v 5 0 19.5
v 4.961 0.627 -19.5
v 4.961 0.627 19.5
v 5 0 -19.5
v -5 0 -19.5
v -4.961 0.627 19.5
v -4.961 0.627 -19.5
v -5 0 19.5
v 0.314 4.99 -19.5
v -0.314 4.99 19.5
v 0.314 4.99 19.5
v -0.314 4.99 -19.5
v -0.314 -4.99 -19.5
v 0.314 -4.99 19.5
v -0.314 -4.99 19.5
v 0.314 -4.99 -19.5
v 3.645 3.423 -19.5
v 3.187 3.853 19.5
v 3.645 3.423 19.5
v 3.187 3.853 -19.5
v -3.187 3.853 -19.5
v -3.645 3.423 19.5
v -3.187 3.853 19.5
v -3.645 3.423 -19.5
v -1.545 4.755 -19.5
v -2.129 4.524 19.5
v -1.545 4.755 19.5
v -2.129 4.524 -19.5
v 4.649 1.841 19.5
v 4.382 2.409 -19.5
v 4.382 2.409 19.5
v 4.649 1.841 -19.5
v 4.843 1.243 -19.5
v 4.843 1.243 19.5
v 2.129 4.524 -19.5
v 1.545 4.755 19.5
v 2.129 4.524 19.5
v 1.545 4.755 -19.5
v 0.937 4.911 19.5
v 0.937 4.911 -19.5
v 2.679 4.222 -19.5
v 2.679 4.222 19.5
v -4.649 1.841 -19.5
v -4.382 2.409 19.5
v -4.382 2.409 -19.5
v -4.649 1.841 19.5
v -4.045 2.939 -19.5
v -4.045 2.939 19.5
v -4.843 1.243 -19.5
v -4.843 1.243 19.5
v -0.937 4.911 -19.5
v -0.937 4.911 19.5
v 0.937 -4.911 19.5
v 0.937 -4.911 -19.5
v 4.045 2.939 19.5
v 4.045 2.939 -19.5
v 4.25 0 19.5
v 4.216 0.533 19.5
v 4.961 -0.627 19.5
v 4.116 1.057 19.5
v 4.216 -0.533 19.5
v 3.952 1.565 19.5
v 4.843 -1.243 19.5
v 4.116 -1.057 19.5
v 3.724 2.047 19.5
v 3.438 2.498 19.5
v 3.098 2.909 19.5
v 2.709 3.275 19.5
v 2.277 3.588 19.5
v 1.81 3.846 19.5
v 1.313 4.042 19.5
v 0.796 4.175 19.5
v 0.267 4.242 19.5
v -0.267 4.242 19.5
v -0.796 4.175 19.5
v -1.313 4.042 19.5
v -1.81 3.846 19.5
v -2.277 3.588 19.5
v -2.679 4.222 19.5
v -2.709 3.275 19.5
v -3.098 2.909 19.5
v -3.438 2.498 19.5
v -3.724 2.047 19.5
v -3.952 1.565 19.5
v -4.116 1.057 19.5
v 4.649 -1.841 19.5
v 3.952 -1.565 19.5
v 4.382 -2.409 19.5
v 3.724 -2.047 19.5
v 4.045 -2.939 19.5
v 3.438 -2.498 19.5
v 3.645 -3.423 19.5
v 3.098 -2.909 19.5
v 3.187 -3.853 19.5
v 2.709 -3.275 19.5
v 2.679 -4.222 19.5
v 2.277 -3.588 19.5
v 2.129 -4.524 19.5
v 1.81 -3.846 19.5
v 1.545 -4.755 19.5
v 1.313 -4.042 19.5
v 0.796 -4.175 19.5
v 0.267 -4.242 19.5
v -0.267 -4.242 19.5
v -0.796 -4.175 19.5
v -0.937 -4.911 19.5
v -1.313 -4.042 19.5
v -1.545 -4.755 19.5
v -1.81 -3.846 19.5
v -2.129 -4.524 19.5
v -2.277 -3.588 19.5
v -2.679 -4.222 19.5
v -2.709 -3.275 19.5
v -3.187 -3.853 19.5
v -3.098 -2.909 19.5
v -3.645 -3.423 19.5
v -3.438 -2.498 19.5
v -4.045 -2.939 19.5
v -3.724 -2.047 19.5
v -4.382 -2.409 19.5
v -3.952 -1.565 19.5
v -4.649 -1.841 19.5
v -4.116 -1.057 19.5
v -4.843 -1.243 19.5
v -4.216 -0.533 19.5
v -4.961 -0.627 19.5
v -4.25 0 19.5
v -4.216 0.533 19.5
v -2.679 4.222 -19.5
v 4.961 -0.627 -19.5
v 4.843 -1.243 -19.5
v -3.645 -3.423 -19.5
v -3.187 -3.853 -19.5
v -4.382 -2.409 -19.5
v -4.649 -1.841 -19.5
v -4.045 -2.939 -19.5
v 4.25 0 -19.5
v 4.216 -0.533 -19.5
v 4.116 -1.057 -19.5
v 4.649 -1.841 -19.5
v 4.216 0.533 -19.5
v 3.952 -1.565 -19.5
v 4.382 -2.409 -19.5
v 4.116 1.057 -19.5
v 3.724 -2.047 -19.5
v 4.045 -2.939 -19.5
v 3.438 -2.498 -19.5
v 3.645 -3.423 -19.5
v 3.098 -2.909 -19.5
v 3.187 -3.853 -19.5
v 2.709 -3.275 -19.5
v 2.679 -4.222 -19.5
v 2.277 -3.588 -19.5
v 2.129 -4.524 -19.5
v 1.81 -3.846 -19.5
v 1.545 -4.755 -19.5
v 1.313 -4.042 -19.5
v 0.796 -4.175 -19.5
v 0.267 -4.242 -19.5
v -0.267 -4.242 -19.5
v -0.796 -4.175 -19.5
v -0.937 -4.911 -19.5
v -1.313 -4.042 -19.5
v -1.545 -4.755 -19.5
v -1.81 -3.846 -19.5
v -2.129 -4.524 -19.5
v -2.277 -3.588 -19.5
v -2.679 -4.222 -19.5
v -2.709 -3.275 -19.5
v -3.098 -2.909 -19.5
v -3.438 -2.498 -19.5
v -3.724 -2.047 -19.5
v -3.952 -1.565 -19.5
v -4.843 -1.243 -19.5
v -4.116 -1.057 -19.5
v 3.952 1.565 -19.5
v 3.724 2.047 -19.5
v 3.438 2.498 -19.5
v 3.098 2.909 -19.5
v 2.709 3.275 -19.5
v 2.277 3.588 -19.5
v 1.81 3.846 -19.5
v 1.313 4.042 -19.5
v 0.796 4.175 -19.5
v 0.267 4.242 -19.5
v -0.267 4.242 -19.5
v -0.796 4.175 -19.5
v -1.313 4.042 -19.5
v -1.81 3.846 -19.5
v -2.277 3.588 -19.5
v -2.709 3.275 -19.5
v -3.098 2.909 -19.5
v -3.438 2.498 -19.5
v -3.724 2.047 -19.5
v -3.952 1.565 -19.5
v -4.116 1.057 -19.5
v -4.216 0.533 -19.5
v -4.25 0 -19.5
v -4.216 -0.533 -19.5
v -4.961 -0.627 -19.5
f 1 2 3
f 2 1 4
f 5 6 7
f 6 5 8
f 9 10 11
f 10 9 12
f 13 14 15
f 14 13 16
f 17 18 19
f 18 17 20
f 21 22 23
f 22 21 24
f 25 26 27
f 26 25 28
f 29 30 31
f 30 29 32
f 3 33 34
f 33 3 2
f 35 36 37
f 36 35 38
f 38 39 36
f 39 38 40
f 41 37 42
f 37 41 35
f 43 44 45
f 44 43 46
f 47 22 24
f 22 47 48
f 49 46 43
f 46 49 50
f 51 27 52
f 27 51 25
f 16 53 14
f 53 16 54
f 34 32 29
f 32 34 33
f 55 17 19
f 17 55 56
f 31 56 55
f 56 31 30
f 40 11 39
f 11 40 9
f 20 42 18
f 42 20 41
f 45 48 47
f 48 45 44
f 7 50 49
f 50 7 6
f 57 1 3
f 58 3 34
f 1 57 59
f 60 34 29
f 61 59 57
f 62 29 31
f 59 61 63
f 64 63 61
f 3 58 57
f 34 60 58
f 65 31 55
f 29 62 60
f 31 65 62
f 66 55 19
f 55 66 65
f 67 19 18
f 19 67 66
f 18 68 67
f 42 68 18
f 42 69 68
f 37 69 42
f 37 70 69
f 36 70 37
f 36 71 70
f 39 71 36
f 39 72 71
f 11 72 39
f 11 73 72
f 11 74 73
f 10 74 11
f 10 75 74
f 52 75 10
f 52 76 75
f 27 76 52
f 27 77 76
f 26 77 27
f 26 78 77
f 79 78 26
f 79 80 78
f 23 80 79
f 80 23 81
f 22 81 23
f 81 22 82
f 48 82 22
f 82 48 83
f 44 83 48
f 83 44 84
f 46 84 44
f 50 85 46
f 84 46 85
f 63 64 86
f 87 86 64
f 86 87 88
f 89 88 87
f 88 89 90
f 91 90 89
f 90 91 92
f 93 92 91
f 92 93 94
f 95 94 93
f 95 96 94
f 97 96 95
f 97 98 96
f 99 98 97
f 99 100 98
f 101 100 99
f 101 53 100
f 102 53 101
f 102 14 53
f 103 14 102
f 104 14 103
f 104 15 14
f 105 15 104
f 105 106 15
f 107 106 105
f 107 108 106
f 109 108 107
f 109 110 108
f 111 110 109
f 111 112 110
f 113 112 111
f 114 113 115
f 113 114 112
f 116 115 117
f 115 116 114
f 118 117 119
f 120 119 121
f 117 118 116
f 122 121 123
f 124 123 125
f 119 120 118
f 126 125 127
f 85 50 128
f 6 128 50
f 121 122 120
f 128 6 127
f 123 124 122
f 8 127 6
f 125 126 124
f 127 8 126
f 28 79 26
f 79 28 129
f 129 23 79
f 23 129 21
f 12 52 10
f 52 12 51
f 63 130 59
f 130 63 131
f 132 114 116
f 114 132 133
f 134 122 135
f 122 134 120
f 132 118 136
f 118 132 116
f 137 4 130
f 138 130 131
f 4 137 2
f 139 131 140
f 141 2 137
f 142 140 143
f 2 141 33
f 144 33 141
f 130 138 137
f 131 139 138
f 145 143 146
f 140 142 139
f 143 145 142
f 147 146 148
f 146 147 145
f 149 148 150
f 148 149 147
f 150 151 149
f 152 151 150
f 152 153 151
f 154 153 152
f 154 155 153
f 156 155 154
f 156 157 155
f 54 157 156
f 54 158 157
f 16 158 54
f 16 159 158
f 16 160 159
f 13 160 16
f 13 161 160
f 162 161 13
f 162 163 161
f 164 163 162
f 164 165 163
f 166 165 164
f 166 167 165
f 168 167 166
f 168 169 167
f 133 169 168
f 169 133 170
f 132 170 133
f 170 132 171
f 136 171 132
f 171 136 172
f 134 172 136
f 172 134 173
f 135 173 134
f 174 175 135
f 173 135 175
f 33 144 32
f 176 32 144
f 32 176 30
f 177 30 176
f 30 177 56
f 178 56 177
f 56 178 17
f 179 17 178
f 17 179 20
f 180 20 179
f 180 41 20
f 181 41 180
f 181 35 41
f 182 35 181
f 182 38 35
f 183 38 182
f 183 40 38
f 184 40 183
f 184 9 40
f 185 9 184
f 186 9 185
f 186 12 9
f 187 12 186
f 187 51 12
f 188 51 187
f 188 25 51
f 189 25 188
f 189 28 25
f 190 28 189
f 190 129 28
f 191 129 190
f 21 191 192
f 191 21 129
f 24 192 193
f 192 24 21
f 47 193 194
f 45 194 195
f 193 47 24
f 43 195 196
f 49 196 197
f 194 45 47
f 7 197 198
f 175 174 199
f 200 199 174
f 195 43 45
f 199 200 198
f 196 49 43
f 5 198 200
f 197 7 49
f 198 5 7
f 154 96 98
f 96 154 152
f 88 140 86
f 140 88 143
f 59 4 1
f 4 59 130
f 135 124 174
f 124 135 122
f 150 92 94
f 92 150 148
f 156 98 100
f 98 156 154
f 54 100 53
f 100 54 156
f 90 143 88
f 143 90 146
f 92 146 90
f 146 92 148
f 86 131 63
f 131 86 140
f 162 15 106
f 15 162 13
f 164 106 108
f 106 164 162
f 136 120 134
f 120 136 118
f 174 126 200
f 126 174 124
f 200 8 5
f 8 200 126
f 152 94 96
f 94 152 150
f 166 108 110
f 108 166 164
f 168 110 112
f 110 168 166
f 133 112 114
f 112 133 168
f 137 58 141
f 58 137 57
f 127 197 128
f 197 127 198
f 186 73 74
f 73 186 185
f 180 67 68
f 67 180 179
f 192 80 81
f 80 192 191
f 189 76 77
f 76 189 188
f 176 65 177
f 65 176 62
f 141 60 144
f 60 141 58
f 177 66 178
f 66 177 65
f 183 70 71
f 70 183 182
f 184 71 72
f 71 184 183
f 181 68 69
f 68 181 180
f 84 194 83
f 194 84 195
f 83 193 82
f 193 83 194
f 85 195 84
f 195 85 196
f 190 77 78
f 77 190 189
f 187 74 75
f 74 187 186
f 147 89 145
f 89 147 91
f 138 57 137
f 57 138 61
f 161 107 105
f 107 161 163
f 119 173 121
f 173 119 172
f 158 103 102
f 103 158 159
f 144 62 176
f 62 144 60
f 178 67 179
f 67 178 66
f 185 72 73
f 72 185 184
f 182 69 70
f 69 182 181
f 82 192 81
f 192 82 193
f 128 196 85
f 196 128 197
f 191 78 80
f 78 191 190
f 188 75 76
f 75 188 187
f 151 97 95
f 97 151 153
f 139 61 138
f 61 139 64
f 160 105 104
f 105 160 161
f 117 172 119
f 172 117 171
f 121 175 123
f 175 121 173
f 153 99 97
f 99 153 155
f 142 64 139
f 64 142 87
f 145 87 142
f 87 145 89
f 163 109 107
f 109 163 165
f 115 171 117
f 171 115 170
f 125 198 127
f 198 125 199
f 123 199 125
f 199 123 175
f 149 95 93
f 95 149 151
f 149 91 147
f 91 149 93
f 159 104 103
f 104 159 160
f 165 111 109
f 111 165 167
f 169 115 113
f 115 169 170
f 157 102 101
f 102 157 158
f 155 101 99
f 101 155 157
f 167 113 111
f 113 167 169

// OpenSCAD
$fn = 50;


difference() {
	union() {
		translate(v = [0, 0, -19.5000000000]) {
			cylinder(h = 39, r = 5.0000000000);
		}
	}
	union() {
		translate(v = [0, 0, -100.0000000000]) {
			cylinder(h = 200, r = 4.2500000000);
		}
	}
}
